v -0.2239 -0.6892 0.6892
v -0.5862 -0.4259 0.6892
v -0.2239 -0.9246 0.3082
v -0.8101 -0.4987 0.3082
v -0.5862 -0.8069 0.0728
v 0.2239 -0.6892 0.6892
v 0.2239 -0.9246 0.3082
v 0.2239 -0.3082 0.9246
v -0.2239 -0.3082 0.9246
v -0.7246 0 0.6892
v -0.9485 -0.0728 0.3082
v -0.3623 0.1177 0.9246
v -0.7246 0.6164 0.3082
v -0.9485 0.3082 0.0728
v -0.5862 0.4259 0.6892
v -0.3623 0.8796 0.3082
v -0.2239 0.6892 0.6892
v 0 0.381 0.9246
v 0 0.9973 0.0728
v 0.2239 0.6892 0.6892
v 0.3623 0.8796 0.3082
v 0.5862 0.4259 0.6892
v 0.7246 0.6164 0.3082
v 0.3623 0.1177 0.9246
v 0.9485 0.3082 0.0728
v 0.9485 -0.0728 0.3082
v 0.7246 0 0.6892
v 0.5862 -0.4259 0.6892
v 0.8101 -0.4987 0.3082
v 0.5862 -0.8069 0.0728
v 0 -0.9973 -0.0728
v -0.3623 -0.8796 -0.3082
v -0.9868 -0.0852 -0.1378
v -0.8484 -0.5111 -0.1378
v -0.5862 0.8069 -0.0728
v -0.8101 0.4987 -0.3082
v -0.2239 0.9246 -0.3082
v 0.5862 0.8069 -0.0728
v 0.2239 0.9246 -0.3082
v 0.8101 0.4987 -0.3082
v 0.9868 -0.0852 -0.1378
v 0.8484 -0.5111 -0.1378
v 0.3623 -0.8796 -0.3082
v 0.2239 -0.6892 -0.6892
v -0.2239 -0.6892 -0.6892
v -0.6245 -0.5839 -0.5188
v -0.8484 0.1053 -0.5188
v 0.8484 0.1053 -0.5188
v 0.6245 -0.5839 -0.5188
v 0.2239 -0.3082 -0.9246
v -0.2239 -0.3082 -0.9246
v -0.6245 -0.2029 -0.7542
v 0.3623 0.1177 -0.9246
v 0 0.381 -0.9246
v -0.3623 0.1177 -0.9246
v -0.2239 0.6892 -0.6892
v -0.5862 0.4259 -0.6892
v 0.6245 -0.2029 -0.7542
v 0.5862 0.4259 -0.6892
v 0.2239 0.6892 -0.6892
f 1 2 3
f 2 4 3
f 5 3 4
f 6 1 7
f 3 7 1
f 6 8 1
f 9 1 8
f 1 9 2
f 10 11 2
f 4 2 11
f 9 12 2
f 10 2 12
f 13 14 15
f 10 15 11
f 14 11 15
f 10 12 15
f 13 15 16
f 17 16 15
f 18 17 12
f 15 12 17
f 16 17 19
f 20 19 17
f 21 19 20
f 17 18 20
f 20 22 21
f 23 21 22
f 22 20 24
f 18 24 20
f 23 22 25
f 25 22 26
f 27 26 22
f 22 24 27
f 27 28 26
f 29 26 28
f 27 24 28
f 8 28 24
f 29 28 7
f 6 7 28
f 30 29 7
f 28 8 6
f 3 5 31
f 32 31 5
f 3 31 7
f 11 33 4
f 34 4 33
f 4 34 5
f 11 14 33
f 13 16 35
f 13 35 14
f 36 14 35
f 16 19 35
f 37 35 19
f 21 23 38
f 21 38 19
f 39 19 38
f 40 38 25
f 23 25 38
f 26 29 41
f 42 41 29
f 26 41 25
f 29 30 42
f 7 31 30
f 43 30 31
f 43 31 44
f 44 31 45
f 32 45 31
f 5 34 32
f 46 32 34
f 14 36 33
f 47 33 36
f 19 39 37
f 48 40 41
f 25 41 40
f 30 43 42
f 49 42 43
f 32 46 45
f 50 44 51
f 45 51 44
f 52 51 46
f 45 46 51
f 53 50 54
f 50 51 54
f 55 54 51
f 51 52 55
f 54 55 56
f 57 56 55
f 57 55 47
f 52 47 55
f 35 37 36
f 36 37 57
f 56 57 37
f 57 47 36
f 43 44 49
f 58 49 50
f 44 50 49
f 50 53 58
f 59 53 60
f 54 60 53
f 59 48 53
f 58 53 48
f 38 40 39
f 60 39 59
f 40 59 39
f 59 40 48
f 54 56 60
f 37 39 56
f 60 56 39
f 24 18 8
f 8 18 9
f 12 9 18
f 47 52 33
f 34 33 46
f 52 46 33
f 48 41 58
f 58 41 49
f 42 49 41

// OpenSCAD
polyhedron( points = [[-0.223918979630002, -0.689151757672707, 0.689151757365644], [-0.586227499592216, -0.425919209621715, 0.689151757365644], [-0.724617039711902, -6.99065208241238e-11, 0.689151757365644], [-0.586227499477486, 0.425919209444622, 0.689151757365644], [-0.223918979568128, 0.689151757357802, 0.689151757365644], [0.223918979832113, 0.689151757317586, 0.689151757365644], [0.586227499694203, 0.425919209339344, 0.689151757365644], [0.724617039852131, -2.00039277083159e-10, 0.689151757365644], [0.586227499655962, -0.425919209726996, 0.689151757365644], [0.223918979770244, -0.689151757672707, 0.689151757365644], [-0.223918979609895, -0.92459410633896, 0.308198035211659], [-0.810146479278052, -0.498674896684912, 0.308198035202829], [-0.948536019358347, -0.0727556869029832, 0.308198035153462], [-0.724617039551562, 0.616396070558573, 0.308198035188118], [-0.362308519708944, 0.879628618398913, 0.308198035153462], [0.362308520064525, 0.879628618316515, 0.308198035188118], [0.724617039836712, 0.616396070379236, 0.308198035153462], [0.948536019486771, -0.0727556871332436, 0.308198035188118], [0.810146479301776, -0.498674896562042, 0.308198035153462], [0.223918979720739, -0.924594106323504, 0.308198035236667], [-4.10594235018763e-11, -0.997349792613931, -0.0727556871194948], [-0.586227499623428, -0.806872932079666, 0.0727556868263694], [-0.948536019312444, 0.308198035658102, 0.0727556867912902], [2.24824225432437e-10, 0.997349792552015, 0.0727556866864961], [0.948536019498375, 0.308198035006099, 0.0727556866864961], [0.586227499624811, -0.806872931836263, 0.0727556866899355], [-0.362308520015381, -0.879628618668557, -0.308198035162043], [-0.223918979877914, -0.689151757163147, -0.689151757147616], [-0.223918979853149, -0.308198034584075, -0.924594105480691], [-0.362308519950548, 0.117721175192293, -0.92459410549409], [-0.58622749954329, 0.425919210501878, -0.689151757182696], [-0.81014647915787, 0.498674897128855, -0.308198035205398], [0.362308519961549, -0.879628618753603, -0.308198035485472], [0.223918979812431, -0.68915175778802, -0.689151757650574], [0.223918979824039, -0.308198035753956, -0.924594106087126], [0.362308519991926, 0.117721173680397, -0.924594106088438], [0.586227499662362, 0.425919208981598, -0.689151757654005], [0.810146479332158, 0.498674895937028, -0.308198035489717], [-1.53465184487918e-09, 0.380953723938793, -0.924594104187563], [-0.223918981520009, 0.689151758575474, -0.689151755194313], [0.223918979464103, 0.689151757225511, -0.689151757772444], [-0.223918979387793, 0.924594105323444, -0.308198035328308], [0.223918980034249, 0.924594106256465, -0.308198035437007], [0.586227499878955, 0.806872932019339, -0.0727556867893173], [-0.586227499868502, 0.806872931925038, -0.0727556867893173], [-0.223918979211752, -0.308198035273508, 0.924594105471803], [0.223918979750132, -0.308198035441322, 0.924594105718328], [0.362308519915095, 0.117721174033741, 0.924594105718328], [9.27129114383772e-11, 0.380953721966272, 0.924594105718329], [-0.36230851937376, 0.117721174107132, 0.924594105414236], [-0.848396407252298, -0.511103050873983, -0.137830351556375], [-0.986785947478212, -0.0851838416002916, -0.137830351565892], [-0.848396407336071, 0.105293019833613, -0.518784073516171], [-0.624477427775042, -0.202905015444524, -0.754226421786678], [-0.624477427655003, -0.58385873751087, -0.518784073365944], [0.986785947130159, -0.0851838425028642, -0.137830351607057], [0.848396407361707, -0.511103051606087, -0.137830351601866], [0.624477427730157, -0.583858738500918, -0.518784073730855], [0.624477427748939, -0.202905016510938, -0.754226422126524], [0.848396407000853, 0.105293018460569, -0.518784073604431]], faces = [[0, 1, 11, 21, 10], [0, 10, 19, 9], [0, 9, 46, 45], [0, 45, 1], [1, 2, 12, 11], [1, 45, 49, 2], [2, 3, 13, 22, 12], [2, 49, 3], [3, 4, 14, 13], [3, 49, 48, 4], [4, 5, 15, 23, 14], [4, 48, 5], [5, 6, 16, 15], [5, 48, 47, 6], [6, 7, 17, 24, 16], [6, 47, 7], [7, 8, 18, 17], [7, 47, 46, 8], [8, 9, 19, 25, 18], [8, 46, 9], [10, 21, 26, 20], [10, 20, 19], [11, 12, 51, 50], [11, 50, 21], [12, 22, 51], [13, 14, 44], [13, 44, 31, 22], [14, 23, 41, 44], [15, 16, 43], [15, 43, 42, 23], [16, 24, 37, 43], [17, 18, 56, 55], [17, 55, 24], [18, 25, 56], [19, 20, 32, 25], [20, 26, 27, 33, 32], [21, 50, 54, 26], [22, 31, 52, 51], [23, 42, 41], [24, 55, 59, 37], [25, 32, 57, 56], [26, 54, 27], [27, 28, 34, 33], [27, 54, 53, 28], [28, 29, 38, 35, 34], [28, 53, 29], [29, 30, 39, 38], [29, 53, 52, 30], [30, 31, 44, 41, 39], [30, 52, 31], [32, 33, 57], [33, 34, 58, 57], [34, 35, 58], [35, 38, 40, 36], [35, 36, 59, 58], [36, 40, 42, 43, 37], [36, 37, 59], [38, 39, 40], [39, 41, 42, 40], [45, 46, 47, 48, 49], [50, 51, 52, 53, 54], [55, 56, 57, 58, 59]]);
